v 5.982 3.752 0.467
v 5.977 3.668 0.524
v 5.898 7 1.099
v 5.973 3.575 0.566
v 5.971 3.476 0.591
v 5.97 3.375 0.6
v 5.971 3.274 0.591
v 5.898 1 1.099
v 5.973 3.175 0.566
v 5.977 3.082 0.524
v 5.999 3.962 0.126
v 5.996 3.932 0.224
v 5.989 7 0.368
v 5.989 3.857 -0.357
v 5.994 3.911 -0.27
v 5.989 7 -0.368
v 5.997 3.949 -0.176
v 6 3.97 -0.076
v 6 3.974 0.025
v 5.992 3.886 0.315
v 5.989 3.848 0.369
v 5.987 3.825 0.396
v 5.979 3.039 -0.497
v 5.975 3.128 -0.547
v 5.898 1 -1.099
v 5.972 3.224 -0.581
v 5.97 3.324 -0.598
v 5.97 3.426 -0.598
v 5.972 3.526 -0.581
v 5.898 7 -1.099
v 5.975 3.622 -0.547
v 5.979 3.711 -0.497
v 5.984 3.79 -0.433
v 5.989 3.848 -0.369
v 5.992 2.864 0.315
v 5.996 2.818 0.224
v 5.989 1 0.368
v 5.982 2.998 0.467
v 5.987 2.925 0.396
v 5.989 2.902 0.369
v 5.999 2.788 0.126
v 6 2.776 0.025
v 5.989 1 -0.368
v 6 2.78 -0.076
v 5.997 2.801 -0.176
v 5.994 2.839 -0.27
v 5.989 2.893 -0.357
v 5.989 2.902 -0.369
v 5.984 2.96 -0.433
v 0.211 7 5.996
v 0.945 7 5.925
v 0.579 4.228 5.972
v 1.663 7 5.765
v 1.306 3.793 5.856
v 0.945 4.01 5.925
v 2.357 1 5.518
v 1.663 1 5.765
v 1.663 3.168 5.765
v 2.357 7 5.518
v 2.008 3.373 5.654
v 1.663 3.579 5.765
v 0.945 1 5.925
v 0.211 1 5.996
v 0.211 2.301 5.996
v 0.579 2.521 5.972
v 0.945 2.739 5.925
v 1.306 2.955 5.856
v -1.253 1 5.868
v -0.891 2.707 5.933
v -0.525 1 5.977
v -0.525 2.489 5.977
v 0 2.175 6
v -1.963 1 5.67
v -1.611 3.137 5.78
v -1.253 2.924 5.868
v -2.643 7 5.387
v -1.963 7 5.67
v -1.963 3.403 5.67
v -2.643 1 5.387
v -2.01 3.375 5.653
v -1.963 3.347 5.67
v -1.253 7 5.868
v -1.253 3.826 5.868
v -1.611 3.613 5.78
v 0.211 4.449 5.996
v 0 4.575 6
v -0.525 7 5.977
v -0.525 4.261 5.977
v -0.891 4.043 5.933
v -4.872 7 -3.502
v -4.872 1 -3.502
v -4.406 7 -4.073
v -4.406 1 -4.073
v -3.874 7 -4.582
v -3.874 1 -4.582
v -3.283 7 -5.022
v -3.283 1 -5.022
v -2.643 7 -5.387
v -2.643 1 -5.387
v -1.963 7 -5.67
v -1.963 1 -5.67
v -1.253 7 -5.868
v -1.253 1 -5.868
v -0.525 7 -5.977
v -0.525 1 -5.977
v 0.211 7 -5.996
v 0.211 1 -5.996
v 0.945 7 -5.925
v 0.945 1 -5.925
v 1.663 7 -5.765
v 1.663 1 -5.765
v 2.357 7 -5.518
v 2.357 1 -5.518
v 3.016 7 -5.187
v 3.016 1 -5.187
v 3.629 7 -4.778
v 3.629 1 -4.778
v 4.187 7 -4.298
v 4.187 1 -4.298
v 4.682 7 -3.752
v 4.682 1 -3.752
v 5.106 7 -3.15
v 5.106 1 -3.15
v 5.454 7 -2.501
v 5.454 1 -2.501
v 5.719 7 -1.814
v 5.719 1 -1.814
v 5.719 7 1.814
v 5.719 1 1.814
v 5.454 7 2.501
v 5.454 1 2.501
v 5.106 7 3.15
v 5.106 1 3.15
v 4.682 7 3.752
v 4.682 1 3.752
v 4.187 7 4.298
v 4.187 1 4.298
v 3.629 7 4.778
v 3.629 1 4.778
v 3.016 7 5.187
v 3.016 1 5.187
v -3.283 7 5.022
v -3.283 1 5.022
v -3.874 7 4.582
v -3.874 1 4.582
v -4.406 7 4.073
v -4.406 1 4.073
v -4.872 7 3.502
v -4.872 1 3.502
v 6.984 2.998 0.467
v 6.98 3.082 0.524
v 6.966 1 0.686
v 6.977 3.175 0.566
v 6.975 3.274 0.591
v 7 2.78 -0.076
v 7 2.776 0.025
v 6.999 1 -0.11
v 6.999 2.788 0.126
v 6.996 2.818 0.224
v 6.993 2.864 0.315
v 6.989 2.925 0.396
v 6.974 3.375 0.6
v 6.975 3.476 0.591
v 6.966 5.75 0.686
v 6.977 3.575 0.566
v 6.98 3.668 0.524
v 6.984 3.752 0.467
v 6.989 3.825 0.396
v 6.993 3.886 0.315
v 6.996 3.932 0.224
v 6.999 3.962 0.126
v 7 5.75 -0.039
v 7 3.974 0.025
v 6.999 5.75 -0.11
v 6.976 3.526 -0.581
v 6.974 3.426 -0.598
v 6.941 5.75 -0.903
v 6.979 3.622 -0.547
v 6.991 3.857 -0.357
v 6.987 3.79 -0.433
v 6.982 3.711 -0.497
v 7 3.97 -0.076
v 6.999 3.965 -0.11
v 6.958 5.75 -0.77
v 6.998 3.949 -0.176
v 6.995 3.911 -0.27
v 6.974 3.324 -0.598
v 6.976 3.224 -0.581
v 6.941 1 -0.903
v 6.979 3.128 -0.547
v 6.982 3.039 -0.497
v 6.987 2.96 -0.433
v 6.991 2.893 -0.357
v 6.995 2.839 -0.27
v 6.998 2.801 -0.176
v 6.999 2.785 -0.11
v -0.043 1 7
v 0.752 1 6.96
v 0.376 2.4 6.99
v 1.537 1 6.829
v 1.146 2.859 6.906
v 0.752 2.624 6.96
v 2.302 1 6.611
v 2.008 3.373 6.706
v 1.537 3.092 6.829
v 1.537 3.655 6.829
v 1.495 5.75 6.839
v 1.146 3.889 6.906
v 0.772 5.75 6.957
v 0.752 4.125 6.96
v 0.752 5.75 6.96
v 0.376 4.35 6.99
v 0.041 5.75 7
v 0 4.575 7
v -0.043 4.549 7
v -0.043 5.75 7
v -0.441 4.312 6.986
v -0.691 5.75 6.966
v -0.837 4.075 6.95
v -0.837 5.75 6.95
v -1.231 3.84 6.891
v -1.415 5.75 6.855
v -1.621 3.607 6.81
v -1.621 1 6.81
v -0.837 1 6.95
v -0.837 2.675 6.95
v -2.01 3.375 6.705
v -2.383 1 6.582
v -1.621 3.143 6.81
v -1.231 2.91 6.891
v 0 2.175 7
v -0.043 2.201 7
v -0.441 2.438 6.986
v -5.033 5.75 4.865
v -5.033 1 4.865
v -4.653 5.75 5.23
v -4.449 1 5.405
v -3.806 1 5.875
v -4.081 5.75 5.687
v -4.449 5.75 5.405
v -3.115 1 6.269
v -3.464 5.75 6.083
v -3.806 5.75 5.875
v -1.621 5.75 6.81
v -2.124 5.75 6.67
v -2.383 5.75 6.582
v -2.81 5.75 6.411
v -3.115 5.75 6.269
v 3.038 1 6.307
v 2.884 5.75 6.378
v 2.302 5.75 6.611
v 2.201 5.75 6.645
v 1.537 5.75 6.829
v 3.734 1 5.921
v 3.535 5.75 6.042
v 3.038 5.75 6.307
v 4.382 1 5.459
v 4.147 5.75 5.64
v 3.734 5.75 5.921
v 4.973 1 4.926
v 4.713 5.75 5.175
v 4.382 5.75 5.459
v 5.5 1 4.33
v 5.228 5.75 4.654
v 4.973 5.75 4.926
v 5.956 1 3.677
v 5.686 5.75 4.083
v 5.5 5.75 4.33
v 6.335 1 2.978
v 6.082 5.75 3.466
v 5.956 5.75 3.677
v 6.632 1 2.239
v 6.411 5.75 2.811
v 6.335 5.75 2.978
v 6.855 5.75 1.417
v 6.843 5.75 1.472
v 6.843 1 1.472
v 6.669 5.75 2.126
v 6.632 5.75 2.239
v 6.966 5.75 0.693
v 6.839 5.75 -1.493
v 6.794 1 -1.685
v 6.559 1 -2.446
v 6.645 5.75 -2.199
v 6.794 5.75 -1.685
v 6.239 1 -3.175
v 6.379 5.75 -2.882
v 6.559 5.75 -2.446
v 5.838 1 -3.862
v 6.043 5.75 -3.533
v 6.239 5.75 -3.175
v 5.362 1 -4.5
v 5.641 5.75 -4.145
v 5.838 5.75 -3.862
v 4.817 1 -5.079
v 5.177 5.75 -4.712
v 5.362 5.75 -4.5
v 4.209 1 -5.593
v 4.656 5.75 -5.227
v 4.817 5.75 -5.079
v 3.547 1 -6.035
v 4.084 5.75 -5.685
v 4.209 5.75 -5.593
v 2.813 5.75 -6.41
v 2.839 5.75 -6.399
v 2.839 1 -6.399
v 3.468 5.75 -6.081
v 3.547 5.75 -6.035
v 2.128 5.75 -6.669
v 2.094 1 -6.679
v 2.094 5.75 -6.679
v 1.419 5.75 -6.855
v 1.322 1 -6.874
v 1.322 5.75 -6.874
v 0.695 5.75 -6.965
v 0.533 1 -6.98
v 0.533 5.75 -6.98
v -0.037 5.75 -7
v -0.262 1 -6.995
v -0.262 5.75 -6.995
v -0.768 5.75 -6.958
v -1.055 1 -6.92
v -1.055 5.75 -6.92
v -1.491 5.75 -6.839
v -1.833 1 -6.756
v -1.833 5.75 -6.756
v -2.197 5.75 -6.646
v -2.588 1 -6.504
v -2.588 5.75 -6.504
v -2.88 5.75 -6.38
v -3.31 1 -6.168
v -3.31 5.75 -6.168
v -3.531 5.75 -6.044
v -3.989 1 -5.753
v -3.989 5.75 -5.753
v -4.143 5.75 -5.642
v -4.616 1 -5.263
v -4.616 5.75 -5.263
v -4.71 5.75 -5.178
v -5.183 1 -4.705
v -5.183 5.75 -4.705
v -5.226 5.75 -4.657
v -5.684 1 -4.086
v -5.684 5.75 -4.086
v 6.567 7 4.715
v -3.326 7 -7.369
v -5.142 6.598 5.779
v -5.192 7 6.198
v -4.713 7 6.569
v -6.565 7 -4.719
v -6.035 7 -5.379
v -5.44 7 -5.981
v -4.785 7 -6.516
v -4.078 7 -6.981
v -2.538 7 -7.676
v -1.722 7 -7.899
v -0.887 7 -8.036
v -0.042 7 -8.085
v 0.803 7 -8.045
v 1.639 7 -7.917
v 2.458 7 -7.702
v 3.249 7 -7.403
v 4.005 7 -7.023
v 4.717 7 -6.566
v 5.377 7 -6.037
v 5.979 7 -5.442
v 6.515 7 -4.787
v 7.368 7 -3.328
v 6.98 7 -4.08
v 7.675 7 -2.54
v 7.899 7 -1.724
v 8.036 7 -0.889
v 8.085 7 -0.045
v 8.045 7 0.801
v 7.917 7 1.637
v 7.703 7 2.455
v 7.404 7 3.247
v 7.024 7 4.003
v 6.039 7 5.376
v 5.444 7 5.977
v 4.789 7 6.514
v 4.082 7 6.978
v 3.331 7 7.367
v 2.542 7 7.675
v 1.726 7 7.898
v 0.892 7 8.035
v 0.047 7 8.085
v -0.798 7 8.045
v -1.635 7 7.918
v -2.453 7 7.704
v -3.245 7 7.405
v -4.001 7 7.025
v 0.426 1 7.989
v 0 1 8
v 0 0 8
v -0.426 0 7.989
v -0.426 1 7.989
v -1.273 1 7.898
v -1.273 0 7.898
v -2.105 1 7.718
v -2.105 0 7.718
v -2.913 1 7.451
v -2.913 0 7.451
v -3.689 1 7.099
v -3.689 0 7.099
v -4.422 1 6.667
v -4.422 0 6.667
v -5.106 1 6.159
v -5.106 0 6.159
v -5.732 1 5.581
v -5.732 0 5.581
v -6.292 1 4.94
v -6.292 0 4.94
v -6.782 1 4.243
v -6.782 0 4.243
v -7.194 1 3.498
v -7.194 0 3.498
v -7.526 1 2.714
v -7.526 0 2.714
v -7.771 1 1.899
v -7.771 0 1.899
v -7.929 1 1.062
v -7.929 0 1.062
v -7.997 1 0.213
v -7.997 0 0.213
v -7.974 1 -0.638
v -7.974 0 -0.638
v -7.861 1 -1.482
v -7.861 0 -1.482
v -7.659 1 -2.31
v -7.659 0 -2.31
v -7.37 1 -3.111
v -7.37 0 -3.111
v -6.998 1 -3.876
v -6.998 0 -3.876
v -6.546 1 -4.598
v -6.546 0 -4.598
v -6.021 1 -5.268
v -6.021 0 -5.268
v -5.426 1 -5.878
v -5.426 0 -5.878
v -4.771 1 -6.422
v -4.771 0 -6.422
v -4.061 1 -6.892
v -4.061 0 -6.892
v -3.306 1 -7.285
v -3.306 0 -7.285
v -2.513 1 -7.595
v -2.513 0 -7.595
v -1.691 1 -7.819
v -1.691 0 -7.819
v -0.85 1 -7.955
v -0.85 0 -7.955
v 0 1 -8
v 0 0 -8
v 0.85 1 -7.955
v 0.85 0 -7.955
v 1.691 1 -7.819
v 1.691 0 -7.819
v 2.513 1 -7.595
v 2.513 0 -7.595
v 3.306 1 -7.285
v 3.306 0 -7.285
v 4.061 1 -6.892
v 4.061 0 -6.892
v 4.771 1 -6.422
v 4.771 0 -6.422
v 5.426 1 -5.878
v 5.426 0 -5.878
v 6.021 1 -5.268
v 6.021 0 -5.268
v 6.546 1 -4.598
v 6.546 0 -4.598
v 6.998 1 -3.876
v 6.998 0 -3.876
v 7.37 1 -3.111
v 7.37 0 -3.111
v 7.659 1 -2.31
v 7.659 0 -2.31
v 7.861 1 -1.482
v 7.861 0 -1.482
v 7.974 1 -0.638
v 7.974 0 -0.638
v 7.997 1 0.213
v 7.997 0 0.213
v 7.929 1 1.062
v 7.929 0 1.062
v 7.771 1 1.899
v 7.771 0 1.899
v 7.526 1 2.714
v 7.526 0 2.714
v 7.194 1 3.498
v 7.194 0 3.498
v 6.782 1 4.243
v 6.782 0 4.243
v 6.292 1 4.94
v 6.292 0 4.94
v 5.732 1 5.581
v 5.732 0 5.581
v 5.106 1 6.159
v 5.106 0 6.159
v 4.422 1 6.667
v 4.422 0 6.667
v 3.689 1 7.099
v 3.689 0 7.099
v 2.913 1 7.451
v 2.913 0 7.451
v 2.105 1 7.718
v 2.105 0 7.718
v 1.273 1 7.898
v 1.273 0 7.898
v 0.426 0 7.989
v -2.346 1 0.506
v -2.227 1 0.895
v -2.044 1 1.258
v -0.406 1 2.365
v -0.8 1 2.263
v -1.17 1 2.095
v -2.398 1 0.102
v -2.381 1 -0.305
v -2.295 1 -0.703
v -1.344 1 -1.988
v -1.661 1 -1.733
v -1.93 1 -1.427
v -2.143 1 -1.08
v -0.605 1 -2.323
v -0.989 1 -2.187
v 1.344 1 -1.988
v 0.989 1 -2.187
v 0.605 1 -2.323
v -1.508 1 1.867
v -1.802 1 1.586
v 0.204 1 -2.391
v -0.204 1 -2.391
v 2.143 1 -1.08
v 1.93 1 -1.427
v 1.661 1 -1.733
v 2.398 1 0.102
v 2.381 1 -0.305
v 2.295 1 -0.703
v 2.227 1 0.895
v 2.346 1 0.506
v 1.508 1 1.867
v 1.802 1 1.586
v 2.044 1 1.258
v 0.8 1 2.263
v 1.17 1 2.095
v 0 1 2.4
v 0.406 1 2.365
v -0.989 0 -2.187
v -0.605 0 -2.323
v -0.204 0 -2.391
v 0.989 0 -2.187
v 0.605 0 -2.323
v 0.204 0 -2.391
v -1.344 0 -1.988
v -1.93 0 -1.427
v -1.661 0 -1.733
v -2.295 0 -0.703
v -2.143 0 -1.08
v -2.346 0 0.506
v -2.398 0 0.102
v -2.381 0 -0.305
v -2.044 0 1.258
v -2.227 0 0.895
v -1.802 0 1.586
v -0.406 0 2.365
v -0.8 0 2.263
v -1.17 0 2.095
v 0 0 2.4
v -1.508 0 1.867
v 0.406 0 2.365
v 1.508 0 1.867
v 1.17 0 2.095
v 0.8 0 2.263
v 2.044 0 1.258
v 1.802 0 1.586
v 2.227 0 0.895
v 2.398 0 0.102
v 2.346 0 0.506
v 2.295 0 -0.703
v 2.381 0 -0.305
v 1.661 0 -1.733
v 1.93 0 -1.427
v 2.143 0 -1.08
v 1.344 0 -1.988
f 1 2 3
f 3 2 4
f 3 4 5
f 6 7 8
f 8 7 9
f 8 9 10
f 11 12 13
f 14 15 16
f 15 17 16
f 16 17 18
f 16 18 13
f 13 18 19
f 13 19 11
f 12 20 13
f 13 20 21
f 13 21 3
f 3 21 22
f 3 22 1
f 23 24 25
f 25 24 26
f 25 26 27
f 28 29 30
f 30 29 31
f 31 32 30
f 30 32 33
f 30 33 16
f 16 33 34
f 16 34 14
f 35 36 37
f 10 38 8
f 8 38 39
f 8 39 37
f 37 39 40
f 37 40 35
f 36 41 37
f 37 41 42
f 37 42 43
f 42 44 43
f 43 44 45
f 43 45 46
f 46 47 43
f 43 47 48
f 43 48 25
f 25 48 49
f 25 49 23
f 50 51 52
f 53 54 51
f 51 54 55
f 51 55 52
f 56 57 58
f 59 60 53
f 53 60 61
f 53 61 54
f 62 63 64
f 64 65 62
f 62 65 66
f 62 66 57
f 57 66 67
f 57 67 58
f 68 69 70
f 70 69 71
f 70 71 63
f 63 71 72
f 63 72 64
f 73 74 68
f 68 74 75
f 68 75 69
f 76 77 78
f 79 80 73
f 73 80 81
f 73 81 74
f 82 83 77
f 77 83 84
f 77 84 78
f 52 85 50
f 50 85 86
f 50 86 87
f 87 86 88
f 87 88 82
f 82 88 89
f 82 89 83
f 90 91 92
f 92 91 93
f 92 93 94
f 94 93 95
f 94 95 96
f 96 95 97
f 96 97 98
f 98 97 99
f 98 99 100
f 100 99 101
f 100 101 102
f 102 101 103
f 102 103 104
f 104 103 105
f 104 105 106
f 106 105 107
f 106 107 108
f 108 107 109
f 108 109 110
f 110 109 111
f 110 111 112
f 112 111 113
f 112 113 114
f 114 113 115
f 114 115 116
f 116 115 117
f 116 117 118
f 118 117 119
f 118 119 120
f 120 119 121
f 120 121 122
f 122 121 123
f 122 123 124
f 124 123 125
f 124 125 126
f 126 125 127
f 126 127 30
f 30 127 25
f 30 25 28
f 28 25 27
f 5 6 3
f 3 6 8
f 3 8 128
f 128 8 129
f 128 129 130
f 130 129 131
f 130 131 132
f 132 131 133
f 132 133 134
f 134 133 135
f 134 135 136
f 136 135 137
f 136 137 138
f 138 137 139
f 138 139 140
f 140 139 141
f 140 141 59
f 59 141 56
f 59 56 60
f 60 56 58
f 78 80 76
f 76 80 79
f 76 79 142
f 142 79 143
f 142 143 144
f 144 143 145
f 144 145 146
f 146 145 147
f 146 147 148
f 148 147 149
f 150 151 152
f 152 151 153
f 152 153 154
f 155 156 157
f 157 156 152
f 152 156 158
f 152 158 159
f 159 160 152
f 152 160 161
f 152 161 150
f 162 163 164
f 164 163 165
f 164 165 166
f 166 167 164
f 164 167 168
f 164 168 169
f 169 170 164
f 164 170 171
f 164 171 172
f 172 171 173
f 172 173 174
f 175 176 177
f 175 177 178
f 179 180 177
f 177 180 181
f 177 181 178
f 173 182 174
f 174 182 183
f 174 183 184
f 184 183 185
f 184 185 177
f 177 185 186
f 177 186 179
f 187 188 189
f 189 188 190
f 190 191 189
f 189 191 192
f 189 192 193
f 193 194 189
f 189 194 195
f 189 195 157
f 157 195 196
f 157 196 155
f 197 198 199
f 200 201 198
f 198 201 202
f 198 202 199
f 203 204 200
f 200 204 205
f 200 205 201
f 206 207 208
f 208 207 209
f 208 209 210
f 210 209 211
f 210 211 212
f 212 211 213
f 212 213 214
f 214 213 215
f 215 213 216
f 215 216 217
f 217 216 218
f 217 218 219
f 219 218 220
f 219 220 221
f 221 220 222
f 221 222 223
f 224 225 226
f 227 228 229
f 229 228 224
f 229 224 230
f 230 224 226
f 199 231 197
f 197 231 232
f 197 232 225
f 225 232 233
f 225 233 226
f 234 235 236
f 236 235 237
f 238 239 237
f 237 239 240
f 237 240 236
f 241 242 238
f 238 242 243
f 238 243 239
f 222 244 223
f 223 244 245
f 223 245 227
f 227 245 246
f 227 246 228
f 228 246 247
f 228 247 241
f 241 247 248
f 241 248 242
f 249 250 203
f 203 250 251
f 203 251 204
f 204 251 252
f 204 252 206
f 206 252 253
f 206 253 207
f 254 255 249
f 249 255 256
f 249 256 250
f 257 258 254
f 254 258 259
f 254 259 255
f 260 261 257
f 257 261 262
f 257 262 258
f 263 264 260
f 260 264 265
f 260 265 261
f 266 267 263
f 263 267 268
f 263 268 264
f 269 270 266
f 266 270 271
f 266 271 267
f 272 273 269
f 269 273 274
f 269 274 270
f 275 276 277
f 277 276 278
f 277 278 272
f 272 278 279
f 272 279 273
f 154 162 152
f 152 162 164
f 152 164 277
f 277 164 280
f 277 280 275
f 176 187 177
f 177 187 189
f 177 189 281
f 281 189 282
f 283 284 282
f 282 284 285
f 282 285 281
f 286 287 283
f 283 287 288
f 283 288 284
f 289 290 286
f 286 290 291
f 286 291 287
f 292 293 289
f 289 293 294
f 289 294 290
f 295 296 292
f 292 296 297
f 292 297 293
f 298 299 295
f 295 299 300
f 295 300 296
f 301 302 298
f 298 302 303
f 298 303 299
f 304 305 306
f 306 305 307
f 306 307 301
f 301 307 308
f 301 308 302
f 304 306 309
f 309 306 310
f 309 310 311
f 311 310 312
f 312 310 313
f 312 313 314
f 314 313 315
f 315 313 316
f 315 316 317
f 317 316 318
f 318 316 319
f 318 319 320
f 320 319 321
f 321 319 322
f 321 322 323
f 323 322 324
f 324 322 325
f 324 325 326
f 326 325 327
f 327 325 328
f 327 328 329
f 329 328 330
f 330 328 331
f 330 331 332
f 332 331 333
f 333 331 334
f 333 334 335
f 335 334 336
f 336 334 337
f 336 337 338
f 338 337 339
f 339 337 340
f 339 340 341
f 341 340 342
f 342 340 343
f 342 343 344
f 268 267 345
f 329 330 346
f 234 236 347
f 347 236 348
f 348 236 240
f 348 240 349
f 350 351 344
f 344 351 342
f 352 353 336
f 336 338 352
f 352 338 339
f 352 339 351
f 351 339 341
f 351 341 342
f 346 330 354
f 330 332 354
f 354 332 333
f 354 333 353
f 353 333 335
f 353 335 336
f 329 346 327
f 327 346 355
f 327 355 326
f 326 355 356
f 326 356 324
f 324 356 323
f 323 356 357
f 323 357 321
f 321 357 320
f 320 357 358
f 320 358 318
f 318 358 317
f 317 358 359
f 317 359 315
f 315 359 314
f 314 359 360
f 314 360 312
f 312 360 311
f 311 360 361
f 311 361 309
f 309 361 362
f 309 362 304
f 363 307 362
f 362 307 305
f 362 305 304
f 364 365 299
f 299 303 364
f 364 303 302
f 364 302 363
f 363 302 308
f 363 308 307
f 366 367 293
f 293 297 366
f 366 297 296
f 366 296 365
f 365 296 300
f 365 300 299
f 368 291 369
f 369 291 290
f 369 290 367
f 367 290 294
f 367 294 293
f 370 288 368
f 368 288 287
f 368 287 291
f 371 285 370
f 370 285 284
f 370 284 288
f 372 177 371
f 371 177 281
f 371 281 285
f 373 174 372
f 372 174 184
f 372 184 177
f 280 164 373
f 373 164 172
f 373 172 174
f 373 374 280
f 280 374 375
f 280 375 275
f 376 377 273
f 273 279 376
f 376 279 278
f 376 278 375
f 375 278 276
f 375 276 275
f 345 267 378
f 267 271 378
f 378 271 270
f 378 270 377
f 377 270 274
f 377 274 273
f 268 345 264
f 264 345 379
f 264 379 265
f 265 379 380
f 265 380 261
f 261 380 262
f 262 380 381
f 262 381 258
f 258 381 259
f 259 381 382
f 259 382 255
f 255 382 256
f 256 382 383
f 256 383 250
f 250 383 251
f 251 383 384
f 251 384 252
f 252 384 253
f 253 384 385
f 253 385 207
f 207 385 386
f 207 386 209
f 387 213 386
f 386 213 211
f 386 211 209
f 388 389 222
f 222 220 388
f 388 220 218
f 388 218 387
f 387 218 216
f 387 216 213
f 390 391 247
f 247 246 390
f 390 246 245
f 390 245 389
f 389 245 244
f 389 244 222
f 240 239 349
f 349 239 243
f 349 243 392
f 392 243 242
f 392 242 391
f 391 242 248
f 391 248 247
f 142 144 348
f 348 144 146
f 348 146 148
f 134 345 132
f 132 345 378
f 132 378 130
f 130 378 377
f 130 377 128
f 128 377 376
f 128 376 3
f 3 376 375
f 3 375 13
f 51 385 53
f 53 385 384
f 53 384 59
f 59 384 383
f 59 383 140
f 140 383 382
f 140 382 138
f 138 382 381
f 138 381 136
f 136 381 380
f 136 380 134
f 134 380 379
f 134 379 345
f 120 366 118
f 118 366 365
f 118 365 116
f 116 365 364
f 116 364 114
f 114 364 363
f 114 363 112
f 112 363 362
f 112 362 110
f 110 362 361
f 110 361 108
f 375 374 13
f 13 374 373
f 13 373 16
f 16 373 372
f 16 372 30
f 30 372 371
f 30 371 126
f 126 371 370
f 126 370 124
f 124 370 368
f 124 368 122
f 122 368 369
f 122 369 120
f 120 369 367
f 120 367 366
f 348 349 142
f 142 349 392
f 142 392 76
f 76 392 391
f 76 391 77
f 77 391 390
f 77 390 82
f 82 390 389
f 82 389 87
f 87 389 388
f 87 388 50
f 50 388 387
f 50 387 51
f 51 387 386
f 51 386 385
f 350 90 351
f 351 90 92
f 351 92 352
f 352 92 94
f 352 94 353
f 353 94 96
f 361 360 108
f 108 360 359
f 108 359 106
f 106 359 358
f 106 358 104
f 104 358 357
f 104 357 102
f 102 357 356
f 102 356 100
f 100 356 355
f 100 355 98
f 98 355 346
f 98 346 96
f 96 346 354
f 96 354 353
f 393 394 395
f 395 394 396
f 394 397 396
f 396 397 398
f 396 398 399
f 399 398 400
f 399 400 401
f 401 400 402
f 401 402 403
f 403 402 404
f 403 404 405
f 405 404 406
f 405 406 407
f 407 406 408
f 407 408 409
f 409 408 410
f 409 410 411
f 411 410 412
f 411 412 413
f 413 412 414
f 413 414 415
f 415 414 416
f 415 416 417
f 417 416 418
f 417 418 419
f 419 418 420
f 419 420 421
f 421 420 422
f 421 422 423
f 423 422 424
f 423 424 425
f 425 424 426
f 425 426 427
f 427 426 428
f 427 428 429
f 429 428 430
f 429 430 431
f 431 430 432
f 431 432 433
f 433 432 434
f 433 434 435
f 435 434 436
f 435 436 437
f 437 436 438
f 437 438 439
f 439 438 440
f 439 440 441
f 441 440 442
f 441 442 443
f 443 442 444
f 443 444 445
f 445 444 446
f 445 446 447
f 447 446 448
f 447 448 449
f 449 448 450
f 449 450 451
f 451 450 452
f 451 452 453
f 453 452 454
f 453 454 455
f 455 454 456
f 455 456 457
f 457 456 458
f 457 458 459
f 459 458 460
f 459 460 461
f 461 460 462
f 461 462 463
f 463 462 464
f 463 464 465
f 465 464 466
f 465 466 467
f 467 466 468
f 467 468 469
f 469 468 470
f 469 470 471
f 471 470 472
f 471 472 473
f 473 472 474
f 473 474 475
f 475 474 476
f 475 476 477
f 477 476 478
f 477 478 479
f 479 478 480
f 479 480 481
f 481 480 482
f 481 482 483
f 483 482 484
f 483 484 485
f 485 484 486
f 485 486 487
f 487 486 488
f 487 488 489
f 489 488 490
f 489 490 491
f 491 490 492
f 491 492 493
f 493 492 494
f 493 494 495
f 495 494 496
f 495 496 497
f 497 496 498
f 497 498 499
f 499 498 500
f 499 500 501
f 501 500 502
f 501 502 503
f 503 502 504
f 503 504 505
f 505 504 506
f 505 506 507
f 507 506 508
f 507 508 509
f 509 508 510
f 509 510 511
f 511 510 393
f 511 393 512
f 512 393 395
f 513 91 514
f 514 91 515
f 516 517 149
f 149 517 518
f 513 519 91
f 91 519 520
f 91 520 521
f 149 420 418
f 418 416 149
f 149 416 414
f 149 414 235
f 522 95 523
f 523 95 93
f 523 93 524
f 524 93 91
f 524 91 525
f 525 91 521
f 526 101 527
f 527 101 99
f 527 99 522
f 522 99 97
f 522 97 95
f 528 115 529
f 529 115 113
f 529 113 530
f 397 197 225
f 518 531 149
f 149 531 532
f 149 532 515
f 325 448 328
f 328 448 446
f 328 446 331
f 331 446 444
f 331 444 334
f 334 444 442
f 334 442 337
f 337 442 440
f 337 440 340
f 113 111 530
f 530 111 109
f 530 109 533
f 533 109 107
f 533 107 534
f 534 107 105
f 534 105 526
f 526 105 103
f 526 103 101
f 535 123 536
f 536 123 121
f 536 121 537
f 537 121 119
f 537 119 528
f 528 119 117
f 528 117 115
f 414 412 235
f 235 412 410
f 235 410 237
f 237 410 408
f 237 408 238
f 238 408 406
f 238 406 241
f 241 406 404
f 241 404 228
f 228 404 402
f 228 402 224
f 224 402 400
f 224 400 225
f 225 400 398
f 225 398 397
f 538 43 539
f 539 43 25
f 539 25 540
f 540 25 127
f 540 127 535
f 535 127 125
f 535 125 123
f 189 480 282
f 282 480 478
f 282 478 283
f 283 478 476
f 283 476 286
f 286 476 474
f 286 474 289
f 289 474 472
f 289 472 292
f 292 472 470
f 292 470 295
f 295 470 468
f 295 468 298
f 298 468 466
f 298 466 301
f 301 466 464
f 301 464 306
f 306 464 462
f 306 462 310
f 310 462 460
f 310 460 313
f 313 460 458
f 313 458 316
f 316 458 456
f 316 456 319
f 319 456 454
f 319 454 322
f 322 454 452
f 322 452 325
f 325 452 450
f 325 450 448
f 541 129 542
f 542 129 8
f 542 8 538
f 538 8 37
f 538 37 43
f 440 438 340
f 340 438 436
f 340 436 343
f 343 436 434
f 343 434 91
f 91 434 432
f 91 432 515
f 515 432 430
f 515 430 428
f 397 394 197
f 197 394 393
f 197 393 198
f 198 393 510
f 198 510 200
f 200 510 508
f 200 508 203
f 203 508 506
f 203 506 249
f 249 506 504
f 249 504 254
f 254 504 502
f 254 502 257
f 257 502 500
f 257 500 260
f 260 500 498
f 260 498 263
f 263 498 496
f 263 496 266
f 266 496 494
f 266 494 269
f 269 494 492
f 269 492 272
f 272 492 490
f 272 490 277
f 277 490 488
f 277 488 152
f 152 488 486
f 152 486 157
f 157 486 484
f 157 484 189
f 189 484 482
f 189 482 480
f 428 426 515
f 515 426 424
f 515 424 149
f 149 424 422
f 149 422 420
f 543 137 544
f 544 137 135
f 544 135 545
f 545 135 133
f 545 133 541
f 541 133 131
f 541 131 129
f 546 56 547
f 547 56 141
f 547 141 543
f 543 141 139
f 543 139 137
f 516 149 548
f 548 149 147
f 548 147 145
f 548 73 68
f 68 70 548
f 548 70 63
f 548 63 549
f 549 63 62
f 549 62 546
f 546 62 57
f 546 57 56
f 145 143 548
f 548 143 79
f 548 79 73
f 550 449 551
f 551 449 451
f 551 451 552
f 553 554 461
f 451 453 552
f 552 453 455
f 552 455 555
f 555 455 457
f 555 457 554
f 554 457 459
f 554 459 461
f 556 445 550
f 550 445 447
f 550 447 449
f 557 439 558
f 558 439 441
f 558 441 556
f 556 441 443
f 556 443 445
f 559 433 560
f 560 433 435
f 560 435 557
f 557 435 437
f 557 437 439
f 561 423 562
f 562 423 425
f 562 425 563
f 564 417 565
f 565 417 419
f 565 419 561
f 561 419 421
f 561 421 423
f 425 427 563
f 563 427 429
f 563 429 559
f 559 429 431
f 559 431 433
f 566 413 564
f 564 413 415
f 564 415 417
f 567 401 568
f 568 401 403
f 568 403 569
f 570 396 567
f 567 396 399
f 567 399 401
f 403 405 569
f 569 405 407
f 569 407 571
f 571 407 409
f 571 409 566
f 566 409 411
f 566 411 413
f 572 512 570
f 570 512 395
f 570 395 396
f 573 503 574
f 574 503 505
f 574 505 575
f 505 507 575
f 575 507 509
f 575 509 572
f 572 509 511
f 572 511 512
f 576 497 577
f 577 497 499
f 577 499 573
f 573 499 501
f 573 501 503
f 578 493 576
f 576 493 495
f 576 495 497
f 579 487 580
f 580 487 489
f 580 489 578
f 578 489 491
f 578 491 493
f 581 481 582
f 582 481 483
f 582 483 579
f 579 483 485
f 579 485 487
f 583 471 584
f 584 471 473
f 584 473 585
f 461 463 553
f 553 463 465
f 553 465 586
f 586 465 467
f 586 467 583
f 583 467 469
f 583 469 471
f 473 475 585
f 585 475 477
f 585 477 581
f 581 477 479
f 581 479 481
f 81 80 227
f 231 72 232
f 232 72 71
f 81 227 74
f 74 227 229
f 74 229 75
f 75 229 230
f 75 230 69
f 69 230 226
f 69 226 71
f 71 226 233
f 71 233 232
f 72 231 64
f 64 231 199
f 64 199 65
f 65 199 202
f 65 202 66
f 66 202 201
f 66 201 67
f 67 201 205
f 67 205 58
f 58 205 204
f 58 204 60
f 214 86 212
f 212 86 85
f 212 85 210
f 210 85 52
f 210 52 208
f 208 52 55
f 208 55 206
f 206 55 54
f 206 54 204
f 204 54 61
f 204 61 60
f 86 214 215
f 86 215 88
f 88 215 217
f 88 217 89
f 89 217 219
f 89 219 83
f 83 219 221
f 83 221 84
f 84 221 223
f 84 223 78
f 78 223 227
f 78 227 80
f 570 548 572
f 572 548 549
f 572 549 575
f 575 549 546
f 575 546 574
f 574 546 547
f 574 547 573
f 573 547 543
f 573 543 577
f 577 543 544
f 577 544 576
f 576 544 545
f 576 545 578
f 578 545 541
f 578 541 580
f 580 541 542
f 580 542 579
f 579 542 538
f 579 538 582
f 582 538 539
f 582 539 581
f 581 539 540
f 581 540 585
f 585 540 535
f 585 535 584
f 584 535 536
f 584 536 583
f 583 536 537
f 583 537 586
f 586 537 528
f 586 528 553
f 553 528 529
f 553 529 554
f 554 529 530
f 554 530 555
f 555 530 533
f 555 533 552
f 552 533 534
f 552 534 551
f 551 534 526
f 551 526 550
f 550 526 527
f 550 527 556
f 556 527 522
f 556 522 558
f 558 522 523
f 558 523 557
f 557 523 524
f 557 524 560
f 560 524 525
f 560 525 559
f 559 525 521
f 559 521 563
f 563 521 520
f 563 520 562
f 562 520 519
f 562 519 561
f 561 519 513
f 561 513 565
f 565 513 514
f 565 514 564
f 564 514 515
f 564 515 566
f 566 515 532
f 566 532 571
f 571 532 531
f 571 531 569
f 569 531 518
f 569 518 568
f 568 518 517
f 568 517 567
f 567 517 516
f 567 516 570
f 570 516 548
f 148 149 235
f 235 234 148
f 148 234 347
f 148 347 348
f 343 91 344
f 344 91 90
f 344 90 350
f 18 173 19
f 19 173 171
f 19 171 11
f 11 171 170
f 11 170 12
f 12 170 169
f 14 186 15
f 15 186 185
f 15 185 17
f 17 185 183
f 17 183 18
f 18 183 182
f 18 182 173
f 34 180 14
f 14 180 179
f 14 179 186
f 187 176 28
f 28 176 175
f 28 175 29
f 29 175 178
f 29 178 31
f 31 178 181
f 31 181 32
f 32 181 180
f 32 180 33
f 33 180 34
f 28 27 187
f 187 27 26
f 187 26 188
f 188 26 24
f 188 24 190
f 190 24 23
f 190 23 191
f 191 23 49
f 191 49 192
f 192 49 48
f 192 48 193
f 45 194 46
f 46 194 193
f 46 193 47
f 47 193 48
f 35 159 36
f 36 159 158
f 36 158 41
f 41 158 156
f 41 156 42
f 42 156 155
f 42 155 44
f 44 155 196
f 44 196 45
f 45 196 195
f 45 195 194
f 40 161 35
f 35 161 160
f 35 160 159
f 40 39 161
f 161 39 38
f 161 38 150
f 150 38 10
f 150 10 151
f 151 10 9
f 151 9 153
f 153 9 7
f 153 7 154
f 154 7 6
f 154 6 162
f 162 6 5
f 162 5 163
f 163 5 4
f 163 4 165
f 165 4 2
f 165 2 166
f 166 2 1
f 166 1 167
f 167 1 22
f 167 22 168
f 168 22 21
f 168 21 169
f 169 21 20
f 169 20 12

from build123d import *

# Parameters (mm, degrees)
SKETCH4_R           = 8
BOSS_EXTRUDE3_DEPTH = 1
SKETCH5_R           = 7
SKETCH5_R_2         = 6
BOSS_EXTRUDE4_DEPTH = 4.75
CUT_EXTRUDE3_START  = -3
SKETCH9_R           = 6
CUT_EXTRUDE3_DEPTH  = 3
CUT_EXTRUDE7_DEPTH  = 10
SKETCH13_R          = 2.4
CUT_EXTRUDE8_DEPTH  = 10
CUT_EXTRUDE9_START  = -6
CUT_EXTRUDE9_DEPTH  = 6
CUT_EXTRUDE10_DEPTH = 10


with BuildPart() as part:
    # Sketch4 → Boss-Extrude3 (new body)
    with BuildSketch(Plane(origin=(0, 0, 0), x_dir=(1, 0, 0), z_dir=(0, 1, 0))):
        with Locations(Location((0, 0, 0), (0, 0, 270))):
            Circle(SKETCH4_R)
    extrude(amount=BOSS_EXTRUDE3_DEPTH)

    # Sketch5 → Boss-Extrude4 (add)
    with BuildSketch(Plane(origin=(0, 1, 0), x_dir=(1, 0, 0), z_dir=(0, 1, 0))):
        with Locations(Location((0, 0, 0), (0, 0, 270))):
            Circle(SKETCH5_R)
        with Locations(Location((0, 0, 0), (0, 0, 270))):
            Circle(SKETCH5_R_2, mode=Mode.SUBTRACT)
    extrude(amount=BOSS_EXTRUDE4_DEPTH)

    # Sketch6 → Revolve4 (revolve)
    with BuildSketch(Plane.XY, mode=Mode.PRIVATE) as revolve4_sk:
        Polygon((0, 5.75), (7, 5.75), (6, 7), (0, 7), align=None)
    revolve(revolve4_sk.sketch.rotate(Axis((0, 5.75, 0), (0, 1, 0)), 90), axis=Axis((0, 5.75, 0), (0, 1, 0)))

    # Sketch9 → Cut-Extrude3 (cut)
    with BuildSketch(Plane(origin=(0, 7, 0), x_dir=(1, 0, 0), z_dir=(0, 1, 0)).offset(CUT_EXTRUDE3_START)):
        with Locations(Location((0, 0, 0), (0, 0, 270))):
            Circle(SKETCH9_R)
    extrude(amount=CUT_EXTRUDE3_DEPTH, mode=Mode.SUBTRACT)

    # Sketch11 → Cut-Extrude7 (cut)
    with BuildSketch(Plane.XY):
        Polygon((0, 2.175), (2.007816798, 3.373213723), (0, 4.575), (-2.009525275, 3.375), align=None)
    extrude(amount=CUT_EXTRUDE7_DEPTH, mode=Mode.SUBTRACT)

    # Sketch13 → Cut-Extrude8 (cut)
    with BuildSketch(Plane(origin=(0, 1, 0), x_dir=(1, 0, 0), z_dir=(0, 1, 0))):
        with Locations(Location((0, 0, 0), (0, 0, 270))):
            Circle(SKETCH13_R)
    extrude(amount=-CUT_EXTRUDE8_DEPTH, mode=Mode.SUBTRACT)

    # Sketch14 → Revolve5 (revolve)
    with BuildSketch(Plane.XY):
        Polygon((6, 7), (6, 5.75), (7, 5.75), (8.08473241, 7), align=None)
    revolve(axis=Axis((0, 5.75, 0), (0, 1, 0)))

    # Sketch15 → Cut-Extrude9 (cut)
    with BuildSketch(Plane(origin=(0, 7, 0), x_dir=(1, 0, 0), z_dir=(0, 1, 0)).offset(CUT_EXTRUDE9_START)):
        with BuildLine():
            Line((-5.191534566, -6.197650119), (-4.871861689, -3.502137017))
            ThreePointArc((-4.871861689, -3.502137017), (-6, 0), (-4.871861689, 3.502137017))
            Line((-4.871861689, 3.502137017), (-6.564616348, 4.718973441))
            ThreePointArc((-6.564616348, 4.718973441), (-8.02152969, -1.008939827), (-5.191534566, -6.197650119))
        make_face()
    extrude(amount=CUT_EXTRUDE9_DEPTH, mode=Mode.SUBTRACT)

    # Sketch16 → Cut-Extrude10 (cut)
    with BuildSketch(Plane(origin=(0, 0, 0), x_dir=(0, 0, -1), z_dir=(1, 0, 0))):
        with BuildLine():
            ThreePointArc((0.6, 3.375), (0.424264069, 3.799264069), (0, 3.975))
            Line((0, 3.975), (0, 2.775))
            ThreePointArc((0, 2.775), (0.424264069, 2.950735931), (0.6, 3.375))
        make_face()
        with BuildLine():
            Line((0, 2.775), (0, 3.975))
            ThreePointArc((0, 3.975), (-0.6, 3.375), (0, 2.775))
        make_face()
    extrude(amount=CUT_EXTRUDE10_DEPTH, mode=Mode.SUBTRACT)


solid = part.part
